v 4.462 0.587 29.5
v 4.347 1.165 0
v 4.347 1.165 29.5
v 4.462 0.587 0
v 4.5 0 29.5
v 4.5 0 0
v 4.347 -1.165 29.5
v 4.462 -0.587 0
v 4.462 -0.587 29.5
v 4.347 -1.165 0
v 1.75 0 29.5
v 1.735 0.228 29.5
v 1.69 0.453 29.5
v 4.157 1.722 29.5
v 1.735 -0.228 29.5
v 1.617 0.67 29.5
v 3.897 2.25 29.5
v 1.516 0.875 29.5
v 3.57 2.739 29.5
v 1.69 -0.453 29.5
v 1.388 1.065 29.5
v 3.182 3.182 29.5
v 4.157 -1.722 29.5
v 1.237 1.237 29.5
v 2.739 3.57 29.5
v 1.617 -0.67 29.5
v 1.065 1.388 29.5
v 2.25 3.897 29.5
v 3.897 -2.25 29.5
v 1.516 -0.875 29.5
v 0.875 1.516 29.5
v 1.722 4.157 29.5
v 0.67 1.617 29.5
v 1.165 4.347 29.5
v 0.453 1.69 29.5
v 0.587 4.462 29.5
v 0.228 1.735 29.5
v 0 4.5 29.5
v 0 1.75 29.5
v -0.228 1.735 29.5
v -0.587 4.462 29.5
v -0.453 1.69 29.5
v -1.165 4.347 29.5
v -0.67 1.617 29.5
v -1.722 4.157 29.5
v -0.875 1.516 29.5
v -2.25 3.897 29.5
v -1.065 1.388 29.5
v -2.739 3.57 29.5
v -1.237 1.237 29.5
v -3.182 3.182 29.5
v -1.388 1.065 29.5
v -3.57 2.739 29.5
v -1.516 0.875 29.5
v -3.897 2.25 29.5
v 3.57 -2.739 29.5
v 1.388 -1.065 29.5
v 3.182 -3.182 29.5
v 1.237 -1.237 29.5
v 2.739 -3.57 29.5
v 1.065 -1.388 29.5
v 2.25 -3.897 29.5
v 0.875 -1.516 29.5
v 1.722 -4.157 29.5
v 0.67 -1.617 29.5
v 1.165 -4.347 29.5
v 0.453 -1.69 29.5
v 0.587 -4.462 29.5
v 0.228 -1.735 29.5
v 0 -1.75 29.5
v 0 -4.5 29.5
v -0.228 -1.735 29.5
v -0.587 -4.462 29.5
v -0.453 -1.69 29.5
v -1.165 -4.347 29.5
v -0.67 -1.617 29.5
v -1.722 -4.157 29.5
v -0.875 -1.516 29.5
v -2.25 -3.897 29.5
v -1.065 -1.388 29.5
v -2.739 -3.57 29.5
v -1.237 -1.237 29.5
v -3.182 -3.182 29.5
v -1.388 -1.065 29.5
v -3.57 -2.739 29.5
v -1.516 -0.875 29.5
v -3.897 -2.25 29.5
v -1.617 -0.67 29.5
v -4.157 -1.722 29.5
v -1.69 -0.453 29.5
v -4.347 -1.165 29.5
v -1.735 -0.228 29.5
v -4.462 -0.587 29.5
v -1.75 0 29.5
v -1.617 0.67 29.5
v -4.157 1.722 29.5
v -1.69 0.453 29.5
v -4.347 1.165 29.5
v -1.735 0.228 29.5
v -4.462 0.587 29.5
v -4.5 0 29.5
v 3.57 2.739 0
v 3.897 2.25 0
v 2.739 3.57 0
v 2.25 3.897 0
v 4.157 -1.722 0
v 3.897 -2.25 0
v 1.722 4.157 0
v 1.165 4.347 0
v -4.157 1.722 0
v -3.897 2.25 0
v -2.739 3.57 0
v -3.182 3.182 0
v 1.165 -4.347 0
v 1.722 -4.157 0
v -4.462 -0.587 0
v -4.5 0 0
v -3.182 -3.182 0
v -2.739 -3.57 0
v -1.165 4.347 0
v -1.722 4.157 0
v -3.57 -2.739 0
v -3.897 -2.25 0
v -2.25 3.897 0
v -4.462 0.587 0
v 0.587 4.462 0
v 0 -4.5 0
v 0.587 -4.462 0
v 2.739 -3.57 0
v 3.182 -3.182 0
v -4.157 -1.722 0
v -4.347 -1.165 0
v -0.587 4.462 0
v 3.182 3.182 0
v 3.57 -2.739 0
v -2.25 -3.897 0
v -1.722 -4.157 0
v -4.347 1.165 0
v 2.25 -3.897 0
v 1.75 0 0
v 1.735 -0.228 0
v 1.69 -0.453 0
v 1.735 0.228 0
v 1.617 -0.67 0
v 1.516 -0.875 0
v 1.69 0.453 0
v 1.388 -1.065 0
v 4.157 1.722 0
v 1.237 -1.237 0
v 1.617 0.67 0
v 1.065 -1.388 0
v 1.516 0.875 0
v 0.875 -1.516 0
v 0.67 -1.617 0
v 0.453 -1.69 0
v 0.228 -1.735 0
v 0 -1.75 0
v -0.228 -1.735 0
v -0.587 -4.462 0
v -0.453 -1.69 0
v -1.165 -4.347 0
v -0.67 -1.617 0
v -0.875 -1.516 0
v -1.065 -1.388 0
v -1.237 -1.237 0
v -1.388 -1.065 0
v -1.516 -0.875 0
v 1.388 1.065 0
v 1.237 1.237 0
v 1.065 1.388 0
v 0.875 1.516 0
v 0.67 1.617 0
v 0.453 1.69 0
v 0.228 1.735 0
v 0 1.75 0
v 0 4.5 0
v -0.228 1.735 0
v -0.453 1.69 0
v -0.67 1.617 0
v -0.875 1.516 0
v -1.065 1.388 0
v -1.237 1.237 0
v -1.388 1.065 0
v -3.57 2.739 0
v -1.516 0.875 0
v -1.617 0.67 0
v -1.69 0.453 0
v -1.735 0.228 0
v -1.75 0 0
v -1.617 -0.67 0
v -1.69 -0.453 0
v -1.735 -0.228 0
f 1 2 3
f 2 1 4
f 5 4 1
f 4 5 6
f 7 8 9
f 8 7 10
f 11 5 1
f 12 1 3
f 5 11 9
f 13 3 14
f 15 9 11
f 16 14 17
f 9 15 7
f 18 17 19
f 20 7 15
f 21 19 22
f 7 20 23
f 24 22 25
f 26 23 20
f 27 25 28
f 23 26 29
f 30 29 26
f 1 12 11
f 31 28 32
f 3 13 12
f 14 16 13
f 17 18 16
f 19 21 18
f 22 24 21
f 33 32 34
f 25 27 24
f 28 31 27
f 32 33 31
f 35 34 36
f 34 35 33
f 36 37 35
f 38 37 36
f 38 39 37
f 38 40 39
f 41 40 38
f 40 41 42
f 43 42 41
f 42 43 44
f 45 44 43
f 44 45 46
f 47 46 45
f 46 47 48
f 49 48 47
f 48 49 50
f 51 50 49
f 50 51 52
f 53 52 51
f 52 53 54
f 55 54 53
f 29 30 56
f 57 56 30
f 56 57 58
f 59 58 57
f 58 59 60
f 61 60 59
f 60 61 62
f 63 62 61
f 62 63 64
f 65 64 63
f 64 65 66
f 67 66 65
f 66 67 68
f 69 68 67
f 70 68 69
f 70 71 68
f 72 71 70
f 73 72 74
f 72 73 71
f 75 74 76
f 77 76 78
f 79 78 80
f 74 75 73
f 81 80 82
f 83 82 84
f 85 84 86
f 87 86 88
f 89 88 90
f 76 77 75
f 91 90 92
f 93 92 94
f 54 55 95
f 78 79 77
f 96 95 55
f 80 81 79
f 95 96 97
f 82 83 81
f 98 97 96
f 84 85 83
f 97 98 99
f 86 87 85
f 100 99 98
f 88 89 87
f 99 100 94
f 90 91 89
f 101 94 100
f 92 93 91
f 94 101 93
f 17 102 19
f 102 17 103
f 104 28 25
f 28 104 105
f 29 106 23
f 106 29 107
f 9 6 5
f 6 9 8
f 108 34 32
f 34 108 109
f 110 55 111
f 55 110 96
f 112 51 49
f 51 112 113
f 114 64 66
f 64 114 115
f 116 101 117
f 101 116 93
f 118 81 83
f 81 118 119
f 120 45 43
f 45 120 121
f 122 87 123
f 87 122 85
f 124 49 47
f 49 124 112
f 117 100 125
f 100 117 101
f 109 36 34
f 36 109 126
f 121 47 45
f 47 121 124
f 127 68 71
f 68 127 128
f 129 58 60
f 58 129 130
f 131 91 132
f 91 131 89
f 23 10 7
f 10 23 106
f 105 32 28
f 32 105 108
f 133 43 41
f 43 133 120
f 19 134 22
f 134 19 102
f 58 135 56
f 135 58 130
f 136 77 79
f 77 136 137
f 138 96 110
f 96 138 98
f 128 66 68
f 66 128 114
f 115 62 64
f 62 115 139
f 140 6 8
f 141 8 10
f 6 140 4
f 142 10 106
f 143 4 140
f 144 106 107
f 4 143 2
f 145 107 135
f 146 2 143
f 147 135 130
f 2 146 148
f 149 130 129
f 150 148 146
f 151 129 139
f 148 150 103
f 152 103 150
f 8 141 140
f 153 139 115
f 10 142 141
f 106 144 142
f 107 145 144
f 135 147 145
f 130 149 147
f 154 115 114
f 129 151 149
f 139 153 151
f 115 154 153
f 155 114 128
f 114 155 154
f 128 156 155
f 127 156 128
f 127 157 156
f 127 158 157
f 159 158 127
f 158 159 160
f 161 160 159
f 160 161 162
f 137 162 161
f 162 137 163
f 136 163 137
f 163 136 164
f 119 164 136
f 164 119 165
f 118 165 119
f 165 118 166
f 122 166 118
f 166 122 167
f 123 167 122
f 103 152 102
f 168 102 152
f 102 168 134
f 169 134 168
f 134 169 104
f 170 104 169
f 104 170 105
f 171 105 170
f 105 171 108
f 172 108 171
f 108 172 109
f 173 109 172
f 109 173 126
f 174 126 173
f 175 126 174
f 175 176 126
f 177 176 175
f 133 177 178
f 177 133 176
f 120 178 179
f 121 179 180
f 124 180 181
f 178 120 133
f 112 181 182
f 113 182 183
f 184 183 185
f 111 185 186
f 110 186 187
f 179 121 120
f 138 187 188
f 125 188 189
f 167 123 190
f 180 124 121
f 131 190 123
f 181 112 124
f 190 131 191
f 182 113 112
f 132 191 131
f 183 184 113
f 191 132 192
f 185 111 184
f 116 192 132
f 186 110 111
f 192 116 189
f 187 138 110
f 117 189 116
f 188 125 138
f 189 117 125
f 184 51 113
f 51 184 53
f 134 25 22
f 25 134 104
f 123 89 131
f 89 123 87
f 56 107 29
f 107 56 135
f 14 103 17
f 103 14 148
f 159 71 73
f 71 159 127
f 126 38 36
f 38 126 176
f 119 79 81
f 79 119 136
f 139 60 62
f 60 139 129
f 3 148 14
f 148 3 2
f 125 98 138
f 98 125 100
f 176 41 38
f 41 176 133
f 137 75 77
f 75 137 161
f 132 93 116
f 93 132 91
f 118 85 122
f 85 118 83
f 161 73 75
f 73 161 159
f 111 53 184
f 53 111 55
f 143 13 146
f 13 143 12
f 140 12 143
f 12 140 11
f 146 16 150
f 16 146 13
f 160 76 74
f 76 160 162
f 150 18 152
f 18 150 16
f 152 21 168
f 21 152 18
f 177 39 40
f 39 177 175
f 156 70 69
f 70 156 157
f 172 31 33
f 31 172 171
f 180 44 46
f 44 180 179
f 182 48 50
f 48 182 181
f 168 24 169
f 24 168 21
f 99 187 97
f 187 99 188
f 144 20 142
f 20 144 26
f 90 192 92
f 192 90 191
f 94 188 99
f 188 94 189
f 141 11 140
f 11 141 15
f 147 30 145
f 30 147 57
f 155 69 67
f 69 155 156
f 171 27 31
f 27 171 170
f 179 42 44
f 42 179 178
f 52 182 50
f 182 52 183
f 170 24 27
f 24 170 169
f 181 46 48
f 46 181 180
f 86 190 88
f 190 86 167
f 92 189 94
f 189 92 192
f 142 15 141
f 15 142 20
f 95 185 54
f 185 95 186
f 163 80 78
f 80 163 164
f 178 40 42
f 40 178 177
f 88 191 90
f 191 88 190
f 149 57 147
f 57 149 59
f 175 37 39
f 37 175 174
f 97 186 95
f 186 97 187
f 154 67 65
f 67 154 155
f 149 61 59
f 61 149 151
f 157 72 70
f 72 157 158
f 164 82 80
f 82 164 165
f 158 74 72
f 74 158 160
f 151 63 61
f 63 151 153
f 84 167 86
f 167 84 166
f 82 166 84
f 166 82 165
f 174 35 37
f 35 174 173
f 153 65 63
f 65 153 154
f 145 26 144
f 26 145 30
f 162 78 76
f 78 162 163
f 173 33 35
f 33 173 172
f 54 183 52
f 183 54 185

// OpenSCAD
// file: parameters.scad
// =============================================================================
// Gen-CF — nightly 2026-10-14 (physics_scorer, honest magpylib watts)
// Stator-only upgrade for an existing Gen-CA: the R84 arcs, hubs and Ø194 steel stay as they are; a new annular 12-bobbin stator with 4.65 mm copper (Gen-CD-style thin window) and r63–105 bobbins replaces the old r64–104 × 4.95 mm stator, together with a shorter gap sleeve and matching frame rods / bridges. Frame rods pushed to R108.5 for ≥1.0 mm web to the bays. No new magnets or steel. Scans showed no R84 stator beats Gen-CA’s own 8.492 W; this kit is the best distinct modular swap (≈8.41 W scan, ≈375 m).
// Clocking 0 deg (magnets N facing S) + D-flat keyed bore + index notch + flip-symmetric hole map.
// Windable 2-piece bobbin; turns = physics_scorer turns_fit; copper only between flanges.
// Steel back-iron: 2× Ø194 × 4.76 mm (3/16") mild-steel discs (steel_backiron_disc.dxf); magnets sit ON the steel
// (through-pockets) -> score with --back-iron. Night 2026-10-14.
// =============================================================================
topology            = "dual_rotor";

// --- Wire / winding (physics_scorer winding-fit) -------------------------------
wire_awg            = 26;
wire_od             = 0.45;     // insulated OD mm (bare 0.405)
fill_realistic      = 0.65;     // insulated-wire area / window (DENSE layered wind with a jig; scorer cap 0.65)
turns               = 347;       // = physics_scorer turns_fit (do NOT raise)
coil_former_type    = "bobbin";
coil_core_inset     = 18.26;     // radial copper build: hub = copper boundary inset by this
wind_build_axial    = 0.0;      // nothing proud of the flanges
wind_build_radial   = 0.0;

// --- Bobbin (base + lid) ---------------------------------------------------------
coil_id_r           = 63.00;    // copper boundary sector
coil_od_r           = 105.00;
span_deg            = 26.82;    // = pitch - 2*asin((wall+0.85)/coil_id_r) -> >=1.2 mm stator web
former_web          = 4.65;     // copper height between flanges (TALL copper: steel keeps Bz up)
flange_t            = 0.80;     // >= 0.8 mm FDM wall rule (tall winds push on the flanges)
wall                = 0.80;     // flange lip beyond copper
former_bare_h       = former_web + 2 * flange_t;
coil_envelope_h     = former_bare_h + 2 * wind_build_axial;
tab_w               = 7.0;
tab_len             = 7.0;
tab_h               = former_bare_h / 2;
pin_d               = 1.9;      // 1.75 mm filament locating pin
coil_mount_r        = coil_od_r + 0.2 + 4.0;
lead_y              = 1.6;
lead_slot_w         = 0.9;
lead_groove_d       = 0.6;

// --- Gap -------------------------------------------------------------------------
run_clear           = 0.50;     // rotor face -> flange
gap_spacer_h        = run_clear + wind_build_axial;
m2m                 = coil_envelope_h + 2 * run_clear;   // rotor face to rotor face (= gap_sleeve length)

// --- Stator ----------------------------------------------------------------------
coil_stations       = 12;
bay_clear           = 0.35;     // 0.35 mm: bobbin BASES print IN PLACE inside the stator bays (print-in-place gap), then pop out
stator_thick        = former_bare_h;                        // bobbins flush both faces
stator_od           = 228;
shaft_clear_stator  = 14.0;     // stator is static; gap sleeve OD 12 spins inside
stator_ir           = 57.85;    // ANNULAR stator: open centre (nested one-plate pack); inner rim 4.0 mm

// --- Rotor(s) --------------------------------------------------------------------
magnet_Br           = 1.43;     // N52
magnet_d_large      = 20.0;
magnet_h_large      = 5.0;      // one O20x5 per pocket
magnet_h_small      = 5.0;      // unused: no O5 pockets in this kit
halbach_magnetisation = "none";  // NO O5 assist magnets in this kit (scan: they lower the 4-pole score)
rotor_b_same_axis   = true;     // same-index magnets share one axis: N faces S across the gap
large_pocket_d      = 20.3;
small_pocket_d      = 5.3;
pocket_h            = 5.00;     // THROUGH the carrier: magnet back face sits on the steel disc (FLUSH seat: carrier = magnet height, magnet face level with the rotor face)
large_n             = 8;
R_large             = 84.0;
small_r_list        = [];       // no O5 pockets
carrier_od          = 194.0;
ring_ir             = 70.85;    // RING rotor: PLA magnet ring r ring_ir..carrier_od/2 (steel disc = structural rotor)
hub_flange_od       = 74.0;     // separate rotor_hub flange (inside the ring, flush with the ring face)
csk_d               = 6.6;      // M3 countersunk head pocket (ISO 10642 head 6.0 nominal) on the stator face
csk_depth           = 1.55;     // = (csk_d - m3_clear) / 2: 90 deg cone; head sits 0.3 mm below the face
n_seg               = 8;        // magnet-carrier ARCS per rotor (segmented carrier)
seg_deg             = 360 / n_seg;
seg_start           = -22.5;   // arc edge angle (between pocket 0 and its clamp bolt)
seg_kerf_deg        = 0.4;      // gap between neighbouring arcs on the steel
carrier_thick       = pocket_h;
hub_h               = 12.0;     // > steel_t + insert: radial set-screw clears the steel
hub_od              = 24.0;     // slim hub so the M4 brace rods fit at R~18 inside the coil ring
hub_insert_d        = 4.0;      // M3 heat-set insert, radial, bears on the D-flat
rotor_b_offset_deg  = 0.0;      // CLOCKING: magnets directly opposite
shaft_key           = "dflat";
dflat_depth         = 0.5;      // 8 mm shaft with 0.5 mm flat (7.5 across flat)
index_notch_d       = 3.0;

// --- Steel back-iron (buyable laser-cut) -------------------------------------------
steel_t             = 4.76;      // mild steel thickness (image method ignores it; sized from steel_flux.py so the return path stays well below saturation)
steel_center_hole   = 26.0;     // slips over the rotor hub (OD 24)
steel_od            = carrier_od;   // steel disc OD = rotor carrier OD

// --- Modular MAX interface ----------------------------------------------------------
shaft_bore          = 8.35;
dflat_x             = 4.0 - dflat_depth + (shaft_bore - 8.0) / 2;
bearing_d           = 21.85;
bearing_h           = 7.2;
m3_clear            = 3.5;
bolt_r_inner        = 30.0;     // M3 steel-disc clamp bolts (inside the magnet ring)
bolt_n_inner        = 4;
bolt_inner_angles   = [0, 90, 180, 270];
bolt_r_outer        = 84.0;     // second M3 steel-disc clamp ring
bolt_outer_angles   = [22.5, 67.5, 112.5, 157.5, 202.5, 247.5, 292.5, 337.5];
flange_bolt_r       = 108.5;     // frame rods: OUTSIDE the rotor OD (rotors spin inside them)
flange_bolt_n       = 4;
flange_bolt_offset  = 45.00;    // between coil stations -> never cuts a lead groove/tab
brace_r             = 18.0;
brace_d             = 4.3;      // temporary M4 jack rods (assembly only)
brace_n             = 4;
brace_angles        = [45, 135, 225, 315];          // flip-symmetric

spacer_pad_od       = 14.0;
spacer_pad_id       = m3_clear;
endbell_od          = 227.0;
endbell_thick       = 8.0;
endbell_shaft_clear = 10.0;
collar_h            = 10.0;
standoff_od         = 9.0;
frame_standoff_h    = run_clear + carrier_thick + hub_h + collar_h + 2.0;
sleeve_od           = 12.0;
plate_max_mm        = 410;

$fn = 64;
// main file
// Gen-CF — frame standoff tube between stator and an endbell, on each M3 frame rod (outside rotor OD).
// Print x4. Height = frame_standoff_h (rotor + steel + hub + collar + running clearance).
include <parameters.scad>;
$fn = 48;
difference() {
    cylinder(d=standoff_od, h=frame_standoff_h);
    translate([0, 0, -0.1]) cylinder(d=m3_clear, h=frame_standoff_h + 0.2);
}
